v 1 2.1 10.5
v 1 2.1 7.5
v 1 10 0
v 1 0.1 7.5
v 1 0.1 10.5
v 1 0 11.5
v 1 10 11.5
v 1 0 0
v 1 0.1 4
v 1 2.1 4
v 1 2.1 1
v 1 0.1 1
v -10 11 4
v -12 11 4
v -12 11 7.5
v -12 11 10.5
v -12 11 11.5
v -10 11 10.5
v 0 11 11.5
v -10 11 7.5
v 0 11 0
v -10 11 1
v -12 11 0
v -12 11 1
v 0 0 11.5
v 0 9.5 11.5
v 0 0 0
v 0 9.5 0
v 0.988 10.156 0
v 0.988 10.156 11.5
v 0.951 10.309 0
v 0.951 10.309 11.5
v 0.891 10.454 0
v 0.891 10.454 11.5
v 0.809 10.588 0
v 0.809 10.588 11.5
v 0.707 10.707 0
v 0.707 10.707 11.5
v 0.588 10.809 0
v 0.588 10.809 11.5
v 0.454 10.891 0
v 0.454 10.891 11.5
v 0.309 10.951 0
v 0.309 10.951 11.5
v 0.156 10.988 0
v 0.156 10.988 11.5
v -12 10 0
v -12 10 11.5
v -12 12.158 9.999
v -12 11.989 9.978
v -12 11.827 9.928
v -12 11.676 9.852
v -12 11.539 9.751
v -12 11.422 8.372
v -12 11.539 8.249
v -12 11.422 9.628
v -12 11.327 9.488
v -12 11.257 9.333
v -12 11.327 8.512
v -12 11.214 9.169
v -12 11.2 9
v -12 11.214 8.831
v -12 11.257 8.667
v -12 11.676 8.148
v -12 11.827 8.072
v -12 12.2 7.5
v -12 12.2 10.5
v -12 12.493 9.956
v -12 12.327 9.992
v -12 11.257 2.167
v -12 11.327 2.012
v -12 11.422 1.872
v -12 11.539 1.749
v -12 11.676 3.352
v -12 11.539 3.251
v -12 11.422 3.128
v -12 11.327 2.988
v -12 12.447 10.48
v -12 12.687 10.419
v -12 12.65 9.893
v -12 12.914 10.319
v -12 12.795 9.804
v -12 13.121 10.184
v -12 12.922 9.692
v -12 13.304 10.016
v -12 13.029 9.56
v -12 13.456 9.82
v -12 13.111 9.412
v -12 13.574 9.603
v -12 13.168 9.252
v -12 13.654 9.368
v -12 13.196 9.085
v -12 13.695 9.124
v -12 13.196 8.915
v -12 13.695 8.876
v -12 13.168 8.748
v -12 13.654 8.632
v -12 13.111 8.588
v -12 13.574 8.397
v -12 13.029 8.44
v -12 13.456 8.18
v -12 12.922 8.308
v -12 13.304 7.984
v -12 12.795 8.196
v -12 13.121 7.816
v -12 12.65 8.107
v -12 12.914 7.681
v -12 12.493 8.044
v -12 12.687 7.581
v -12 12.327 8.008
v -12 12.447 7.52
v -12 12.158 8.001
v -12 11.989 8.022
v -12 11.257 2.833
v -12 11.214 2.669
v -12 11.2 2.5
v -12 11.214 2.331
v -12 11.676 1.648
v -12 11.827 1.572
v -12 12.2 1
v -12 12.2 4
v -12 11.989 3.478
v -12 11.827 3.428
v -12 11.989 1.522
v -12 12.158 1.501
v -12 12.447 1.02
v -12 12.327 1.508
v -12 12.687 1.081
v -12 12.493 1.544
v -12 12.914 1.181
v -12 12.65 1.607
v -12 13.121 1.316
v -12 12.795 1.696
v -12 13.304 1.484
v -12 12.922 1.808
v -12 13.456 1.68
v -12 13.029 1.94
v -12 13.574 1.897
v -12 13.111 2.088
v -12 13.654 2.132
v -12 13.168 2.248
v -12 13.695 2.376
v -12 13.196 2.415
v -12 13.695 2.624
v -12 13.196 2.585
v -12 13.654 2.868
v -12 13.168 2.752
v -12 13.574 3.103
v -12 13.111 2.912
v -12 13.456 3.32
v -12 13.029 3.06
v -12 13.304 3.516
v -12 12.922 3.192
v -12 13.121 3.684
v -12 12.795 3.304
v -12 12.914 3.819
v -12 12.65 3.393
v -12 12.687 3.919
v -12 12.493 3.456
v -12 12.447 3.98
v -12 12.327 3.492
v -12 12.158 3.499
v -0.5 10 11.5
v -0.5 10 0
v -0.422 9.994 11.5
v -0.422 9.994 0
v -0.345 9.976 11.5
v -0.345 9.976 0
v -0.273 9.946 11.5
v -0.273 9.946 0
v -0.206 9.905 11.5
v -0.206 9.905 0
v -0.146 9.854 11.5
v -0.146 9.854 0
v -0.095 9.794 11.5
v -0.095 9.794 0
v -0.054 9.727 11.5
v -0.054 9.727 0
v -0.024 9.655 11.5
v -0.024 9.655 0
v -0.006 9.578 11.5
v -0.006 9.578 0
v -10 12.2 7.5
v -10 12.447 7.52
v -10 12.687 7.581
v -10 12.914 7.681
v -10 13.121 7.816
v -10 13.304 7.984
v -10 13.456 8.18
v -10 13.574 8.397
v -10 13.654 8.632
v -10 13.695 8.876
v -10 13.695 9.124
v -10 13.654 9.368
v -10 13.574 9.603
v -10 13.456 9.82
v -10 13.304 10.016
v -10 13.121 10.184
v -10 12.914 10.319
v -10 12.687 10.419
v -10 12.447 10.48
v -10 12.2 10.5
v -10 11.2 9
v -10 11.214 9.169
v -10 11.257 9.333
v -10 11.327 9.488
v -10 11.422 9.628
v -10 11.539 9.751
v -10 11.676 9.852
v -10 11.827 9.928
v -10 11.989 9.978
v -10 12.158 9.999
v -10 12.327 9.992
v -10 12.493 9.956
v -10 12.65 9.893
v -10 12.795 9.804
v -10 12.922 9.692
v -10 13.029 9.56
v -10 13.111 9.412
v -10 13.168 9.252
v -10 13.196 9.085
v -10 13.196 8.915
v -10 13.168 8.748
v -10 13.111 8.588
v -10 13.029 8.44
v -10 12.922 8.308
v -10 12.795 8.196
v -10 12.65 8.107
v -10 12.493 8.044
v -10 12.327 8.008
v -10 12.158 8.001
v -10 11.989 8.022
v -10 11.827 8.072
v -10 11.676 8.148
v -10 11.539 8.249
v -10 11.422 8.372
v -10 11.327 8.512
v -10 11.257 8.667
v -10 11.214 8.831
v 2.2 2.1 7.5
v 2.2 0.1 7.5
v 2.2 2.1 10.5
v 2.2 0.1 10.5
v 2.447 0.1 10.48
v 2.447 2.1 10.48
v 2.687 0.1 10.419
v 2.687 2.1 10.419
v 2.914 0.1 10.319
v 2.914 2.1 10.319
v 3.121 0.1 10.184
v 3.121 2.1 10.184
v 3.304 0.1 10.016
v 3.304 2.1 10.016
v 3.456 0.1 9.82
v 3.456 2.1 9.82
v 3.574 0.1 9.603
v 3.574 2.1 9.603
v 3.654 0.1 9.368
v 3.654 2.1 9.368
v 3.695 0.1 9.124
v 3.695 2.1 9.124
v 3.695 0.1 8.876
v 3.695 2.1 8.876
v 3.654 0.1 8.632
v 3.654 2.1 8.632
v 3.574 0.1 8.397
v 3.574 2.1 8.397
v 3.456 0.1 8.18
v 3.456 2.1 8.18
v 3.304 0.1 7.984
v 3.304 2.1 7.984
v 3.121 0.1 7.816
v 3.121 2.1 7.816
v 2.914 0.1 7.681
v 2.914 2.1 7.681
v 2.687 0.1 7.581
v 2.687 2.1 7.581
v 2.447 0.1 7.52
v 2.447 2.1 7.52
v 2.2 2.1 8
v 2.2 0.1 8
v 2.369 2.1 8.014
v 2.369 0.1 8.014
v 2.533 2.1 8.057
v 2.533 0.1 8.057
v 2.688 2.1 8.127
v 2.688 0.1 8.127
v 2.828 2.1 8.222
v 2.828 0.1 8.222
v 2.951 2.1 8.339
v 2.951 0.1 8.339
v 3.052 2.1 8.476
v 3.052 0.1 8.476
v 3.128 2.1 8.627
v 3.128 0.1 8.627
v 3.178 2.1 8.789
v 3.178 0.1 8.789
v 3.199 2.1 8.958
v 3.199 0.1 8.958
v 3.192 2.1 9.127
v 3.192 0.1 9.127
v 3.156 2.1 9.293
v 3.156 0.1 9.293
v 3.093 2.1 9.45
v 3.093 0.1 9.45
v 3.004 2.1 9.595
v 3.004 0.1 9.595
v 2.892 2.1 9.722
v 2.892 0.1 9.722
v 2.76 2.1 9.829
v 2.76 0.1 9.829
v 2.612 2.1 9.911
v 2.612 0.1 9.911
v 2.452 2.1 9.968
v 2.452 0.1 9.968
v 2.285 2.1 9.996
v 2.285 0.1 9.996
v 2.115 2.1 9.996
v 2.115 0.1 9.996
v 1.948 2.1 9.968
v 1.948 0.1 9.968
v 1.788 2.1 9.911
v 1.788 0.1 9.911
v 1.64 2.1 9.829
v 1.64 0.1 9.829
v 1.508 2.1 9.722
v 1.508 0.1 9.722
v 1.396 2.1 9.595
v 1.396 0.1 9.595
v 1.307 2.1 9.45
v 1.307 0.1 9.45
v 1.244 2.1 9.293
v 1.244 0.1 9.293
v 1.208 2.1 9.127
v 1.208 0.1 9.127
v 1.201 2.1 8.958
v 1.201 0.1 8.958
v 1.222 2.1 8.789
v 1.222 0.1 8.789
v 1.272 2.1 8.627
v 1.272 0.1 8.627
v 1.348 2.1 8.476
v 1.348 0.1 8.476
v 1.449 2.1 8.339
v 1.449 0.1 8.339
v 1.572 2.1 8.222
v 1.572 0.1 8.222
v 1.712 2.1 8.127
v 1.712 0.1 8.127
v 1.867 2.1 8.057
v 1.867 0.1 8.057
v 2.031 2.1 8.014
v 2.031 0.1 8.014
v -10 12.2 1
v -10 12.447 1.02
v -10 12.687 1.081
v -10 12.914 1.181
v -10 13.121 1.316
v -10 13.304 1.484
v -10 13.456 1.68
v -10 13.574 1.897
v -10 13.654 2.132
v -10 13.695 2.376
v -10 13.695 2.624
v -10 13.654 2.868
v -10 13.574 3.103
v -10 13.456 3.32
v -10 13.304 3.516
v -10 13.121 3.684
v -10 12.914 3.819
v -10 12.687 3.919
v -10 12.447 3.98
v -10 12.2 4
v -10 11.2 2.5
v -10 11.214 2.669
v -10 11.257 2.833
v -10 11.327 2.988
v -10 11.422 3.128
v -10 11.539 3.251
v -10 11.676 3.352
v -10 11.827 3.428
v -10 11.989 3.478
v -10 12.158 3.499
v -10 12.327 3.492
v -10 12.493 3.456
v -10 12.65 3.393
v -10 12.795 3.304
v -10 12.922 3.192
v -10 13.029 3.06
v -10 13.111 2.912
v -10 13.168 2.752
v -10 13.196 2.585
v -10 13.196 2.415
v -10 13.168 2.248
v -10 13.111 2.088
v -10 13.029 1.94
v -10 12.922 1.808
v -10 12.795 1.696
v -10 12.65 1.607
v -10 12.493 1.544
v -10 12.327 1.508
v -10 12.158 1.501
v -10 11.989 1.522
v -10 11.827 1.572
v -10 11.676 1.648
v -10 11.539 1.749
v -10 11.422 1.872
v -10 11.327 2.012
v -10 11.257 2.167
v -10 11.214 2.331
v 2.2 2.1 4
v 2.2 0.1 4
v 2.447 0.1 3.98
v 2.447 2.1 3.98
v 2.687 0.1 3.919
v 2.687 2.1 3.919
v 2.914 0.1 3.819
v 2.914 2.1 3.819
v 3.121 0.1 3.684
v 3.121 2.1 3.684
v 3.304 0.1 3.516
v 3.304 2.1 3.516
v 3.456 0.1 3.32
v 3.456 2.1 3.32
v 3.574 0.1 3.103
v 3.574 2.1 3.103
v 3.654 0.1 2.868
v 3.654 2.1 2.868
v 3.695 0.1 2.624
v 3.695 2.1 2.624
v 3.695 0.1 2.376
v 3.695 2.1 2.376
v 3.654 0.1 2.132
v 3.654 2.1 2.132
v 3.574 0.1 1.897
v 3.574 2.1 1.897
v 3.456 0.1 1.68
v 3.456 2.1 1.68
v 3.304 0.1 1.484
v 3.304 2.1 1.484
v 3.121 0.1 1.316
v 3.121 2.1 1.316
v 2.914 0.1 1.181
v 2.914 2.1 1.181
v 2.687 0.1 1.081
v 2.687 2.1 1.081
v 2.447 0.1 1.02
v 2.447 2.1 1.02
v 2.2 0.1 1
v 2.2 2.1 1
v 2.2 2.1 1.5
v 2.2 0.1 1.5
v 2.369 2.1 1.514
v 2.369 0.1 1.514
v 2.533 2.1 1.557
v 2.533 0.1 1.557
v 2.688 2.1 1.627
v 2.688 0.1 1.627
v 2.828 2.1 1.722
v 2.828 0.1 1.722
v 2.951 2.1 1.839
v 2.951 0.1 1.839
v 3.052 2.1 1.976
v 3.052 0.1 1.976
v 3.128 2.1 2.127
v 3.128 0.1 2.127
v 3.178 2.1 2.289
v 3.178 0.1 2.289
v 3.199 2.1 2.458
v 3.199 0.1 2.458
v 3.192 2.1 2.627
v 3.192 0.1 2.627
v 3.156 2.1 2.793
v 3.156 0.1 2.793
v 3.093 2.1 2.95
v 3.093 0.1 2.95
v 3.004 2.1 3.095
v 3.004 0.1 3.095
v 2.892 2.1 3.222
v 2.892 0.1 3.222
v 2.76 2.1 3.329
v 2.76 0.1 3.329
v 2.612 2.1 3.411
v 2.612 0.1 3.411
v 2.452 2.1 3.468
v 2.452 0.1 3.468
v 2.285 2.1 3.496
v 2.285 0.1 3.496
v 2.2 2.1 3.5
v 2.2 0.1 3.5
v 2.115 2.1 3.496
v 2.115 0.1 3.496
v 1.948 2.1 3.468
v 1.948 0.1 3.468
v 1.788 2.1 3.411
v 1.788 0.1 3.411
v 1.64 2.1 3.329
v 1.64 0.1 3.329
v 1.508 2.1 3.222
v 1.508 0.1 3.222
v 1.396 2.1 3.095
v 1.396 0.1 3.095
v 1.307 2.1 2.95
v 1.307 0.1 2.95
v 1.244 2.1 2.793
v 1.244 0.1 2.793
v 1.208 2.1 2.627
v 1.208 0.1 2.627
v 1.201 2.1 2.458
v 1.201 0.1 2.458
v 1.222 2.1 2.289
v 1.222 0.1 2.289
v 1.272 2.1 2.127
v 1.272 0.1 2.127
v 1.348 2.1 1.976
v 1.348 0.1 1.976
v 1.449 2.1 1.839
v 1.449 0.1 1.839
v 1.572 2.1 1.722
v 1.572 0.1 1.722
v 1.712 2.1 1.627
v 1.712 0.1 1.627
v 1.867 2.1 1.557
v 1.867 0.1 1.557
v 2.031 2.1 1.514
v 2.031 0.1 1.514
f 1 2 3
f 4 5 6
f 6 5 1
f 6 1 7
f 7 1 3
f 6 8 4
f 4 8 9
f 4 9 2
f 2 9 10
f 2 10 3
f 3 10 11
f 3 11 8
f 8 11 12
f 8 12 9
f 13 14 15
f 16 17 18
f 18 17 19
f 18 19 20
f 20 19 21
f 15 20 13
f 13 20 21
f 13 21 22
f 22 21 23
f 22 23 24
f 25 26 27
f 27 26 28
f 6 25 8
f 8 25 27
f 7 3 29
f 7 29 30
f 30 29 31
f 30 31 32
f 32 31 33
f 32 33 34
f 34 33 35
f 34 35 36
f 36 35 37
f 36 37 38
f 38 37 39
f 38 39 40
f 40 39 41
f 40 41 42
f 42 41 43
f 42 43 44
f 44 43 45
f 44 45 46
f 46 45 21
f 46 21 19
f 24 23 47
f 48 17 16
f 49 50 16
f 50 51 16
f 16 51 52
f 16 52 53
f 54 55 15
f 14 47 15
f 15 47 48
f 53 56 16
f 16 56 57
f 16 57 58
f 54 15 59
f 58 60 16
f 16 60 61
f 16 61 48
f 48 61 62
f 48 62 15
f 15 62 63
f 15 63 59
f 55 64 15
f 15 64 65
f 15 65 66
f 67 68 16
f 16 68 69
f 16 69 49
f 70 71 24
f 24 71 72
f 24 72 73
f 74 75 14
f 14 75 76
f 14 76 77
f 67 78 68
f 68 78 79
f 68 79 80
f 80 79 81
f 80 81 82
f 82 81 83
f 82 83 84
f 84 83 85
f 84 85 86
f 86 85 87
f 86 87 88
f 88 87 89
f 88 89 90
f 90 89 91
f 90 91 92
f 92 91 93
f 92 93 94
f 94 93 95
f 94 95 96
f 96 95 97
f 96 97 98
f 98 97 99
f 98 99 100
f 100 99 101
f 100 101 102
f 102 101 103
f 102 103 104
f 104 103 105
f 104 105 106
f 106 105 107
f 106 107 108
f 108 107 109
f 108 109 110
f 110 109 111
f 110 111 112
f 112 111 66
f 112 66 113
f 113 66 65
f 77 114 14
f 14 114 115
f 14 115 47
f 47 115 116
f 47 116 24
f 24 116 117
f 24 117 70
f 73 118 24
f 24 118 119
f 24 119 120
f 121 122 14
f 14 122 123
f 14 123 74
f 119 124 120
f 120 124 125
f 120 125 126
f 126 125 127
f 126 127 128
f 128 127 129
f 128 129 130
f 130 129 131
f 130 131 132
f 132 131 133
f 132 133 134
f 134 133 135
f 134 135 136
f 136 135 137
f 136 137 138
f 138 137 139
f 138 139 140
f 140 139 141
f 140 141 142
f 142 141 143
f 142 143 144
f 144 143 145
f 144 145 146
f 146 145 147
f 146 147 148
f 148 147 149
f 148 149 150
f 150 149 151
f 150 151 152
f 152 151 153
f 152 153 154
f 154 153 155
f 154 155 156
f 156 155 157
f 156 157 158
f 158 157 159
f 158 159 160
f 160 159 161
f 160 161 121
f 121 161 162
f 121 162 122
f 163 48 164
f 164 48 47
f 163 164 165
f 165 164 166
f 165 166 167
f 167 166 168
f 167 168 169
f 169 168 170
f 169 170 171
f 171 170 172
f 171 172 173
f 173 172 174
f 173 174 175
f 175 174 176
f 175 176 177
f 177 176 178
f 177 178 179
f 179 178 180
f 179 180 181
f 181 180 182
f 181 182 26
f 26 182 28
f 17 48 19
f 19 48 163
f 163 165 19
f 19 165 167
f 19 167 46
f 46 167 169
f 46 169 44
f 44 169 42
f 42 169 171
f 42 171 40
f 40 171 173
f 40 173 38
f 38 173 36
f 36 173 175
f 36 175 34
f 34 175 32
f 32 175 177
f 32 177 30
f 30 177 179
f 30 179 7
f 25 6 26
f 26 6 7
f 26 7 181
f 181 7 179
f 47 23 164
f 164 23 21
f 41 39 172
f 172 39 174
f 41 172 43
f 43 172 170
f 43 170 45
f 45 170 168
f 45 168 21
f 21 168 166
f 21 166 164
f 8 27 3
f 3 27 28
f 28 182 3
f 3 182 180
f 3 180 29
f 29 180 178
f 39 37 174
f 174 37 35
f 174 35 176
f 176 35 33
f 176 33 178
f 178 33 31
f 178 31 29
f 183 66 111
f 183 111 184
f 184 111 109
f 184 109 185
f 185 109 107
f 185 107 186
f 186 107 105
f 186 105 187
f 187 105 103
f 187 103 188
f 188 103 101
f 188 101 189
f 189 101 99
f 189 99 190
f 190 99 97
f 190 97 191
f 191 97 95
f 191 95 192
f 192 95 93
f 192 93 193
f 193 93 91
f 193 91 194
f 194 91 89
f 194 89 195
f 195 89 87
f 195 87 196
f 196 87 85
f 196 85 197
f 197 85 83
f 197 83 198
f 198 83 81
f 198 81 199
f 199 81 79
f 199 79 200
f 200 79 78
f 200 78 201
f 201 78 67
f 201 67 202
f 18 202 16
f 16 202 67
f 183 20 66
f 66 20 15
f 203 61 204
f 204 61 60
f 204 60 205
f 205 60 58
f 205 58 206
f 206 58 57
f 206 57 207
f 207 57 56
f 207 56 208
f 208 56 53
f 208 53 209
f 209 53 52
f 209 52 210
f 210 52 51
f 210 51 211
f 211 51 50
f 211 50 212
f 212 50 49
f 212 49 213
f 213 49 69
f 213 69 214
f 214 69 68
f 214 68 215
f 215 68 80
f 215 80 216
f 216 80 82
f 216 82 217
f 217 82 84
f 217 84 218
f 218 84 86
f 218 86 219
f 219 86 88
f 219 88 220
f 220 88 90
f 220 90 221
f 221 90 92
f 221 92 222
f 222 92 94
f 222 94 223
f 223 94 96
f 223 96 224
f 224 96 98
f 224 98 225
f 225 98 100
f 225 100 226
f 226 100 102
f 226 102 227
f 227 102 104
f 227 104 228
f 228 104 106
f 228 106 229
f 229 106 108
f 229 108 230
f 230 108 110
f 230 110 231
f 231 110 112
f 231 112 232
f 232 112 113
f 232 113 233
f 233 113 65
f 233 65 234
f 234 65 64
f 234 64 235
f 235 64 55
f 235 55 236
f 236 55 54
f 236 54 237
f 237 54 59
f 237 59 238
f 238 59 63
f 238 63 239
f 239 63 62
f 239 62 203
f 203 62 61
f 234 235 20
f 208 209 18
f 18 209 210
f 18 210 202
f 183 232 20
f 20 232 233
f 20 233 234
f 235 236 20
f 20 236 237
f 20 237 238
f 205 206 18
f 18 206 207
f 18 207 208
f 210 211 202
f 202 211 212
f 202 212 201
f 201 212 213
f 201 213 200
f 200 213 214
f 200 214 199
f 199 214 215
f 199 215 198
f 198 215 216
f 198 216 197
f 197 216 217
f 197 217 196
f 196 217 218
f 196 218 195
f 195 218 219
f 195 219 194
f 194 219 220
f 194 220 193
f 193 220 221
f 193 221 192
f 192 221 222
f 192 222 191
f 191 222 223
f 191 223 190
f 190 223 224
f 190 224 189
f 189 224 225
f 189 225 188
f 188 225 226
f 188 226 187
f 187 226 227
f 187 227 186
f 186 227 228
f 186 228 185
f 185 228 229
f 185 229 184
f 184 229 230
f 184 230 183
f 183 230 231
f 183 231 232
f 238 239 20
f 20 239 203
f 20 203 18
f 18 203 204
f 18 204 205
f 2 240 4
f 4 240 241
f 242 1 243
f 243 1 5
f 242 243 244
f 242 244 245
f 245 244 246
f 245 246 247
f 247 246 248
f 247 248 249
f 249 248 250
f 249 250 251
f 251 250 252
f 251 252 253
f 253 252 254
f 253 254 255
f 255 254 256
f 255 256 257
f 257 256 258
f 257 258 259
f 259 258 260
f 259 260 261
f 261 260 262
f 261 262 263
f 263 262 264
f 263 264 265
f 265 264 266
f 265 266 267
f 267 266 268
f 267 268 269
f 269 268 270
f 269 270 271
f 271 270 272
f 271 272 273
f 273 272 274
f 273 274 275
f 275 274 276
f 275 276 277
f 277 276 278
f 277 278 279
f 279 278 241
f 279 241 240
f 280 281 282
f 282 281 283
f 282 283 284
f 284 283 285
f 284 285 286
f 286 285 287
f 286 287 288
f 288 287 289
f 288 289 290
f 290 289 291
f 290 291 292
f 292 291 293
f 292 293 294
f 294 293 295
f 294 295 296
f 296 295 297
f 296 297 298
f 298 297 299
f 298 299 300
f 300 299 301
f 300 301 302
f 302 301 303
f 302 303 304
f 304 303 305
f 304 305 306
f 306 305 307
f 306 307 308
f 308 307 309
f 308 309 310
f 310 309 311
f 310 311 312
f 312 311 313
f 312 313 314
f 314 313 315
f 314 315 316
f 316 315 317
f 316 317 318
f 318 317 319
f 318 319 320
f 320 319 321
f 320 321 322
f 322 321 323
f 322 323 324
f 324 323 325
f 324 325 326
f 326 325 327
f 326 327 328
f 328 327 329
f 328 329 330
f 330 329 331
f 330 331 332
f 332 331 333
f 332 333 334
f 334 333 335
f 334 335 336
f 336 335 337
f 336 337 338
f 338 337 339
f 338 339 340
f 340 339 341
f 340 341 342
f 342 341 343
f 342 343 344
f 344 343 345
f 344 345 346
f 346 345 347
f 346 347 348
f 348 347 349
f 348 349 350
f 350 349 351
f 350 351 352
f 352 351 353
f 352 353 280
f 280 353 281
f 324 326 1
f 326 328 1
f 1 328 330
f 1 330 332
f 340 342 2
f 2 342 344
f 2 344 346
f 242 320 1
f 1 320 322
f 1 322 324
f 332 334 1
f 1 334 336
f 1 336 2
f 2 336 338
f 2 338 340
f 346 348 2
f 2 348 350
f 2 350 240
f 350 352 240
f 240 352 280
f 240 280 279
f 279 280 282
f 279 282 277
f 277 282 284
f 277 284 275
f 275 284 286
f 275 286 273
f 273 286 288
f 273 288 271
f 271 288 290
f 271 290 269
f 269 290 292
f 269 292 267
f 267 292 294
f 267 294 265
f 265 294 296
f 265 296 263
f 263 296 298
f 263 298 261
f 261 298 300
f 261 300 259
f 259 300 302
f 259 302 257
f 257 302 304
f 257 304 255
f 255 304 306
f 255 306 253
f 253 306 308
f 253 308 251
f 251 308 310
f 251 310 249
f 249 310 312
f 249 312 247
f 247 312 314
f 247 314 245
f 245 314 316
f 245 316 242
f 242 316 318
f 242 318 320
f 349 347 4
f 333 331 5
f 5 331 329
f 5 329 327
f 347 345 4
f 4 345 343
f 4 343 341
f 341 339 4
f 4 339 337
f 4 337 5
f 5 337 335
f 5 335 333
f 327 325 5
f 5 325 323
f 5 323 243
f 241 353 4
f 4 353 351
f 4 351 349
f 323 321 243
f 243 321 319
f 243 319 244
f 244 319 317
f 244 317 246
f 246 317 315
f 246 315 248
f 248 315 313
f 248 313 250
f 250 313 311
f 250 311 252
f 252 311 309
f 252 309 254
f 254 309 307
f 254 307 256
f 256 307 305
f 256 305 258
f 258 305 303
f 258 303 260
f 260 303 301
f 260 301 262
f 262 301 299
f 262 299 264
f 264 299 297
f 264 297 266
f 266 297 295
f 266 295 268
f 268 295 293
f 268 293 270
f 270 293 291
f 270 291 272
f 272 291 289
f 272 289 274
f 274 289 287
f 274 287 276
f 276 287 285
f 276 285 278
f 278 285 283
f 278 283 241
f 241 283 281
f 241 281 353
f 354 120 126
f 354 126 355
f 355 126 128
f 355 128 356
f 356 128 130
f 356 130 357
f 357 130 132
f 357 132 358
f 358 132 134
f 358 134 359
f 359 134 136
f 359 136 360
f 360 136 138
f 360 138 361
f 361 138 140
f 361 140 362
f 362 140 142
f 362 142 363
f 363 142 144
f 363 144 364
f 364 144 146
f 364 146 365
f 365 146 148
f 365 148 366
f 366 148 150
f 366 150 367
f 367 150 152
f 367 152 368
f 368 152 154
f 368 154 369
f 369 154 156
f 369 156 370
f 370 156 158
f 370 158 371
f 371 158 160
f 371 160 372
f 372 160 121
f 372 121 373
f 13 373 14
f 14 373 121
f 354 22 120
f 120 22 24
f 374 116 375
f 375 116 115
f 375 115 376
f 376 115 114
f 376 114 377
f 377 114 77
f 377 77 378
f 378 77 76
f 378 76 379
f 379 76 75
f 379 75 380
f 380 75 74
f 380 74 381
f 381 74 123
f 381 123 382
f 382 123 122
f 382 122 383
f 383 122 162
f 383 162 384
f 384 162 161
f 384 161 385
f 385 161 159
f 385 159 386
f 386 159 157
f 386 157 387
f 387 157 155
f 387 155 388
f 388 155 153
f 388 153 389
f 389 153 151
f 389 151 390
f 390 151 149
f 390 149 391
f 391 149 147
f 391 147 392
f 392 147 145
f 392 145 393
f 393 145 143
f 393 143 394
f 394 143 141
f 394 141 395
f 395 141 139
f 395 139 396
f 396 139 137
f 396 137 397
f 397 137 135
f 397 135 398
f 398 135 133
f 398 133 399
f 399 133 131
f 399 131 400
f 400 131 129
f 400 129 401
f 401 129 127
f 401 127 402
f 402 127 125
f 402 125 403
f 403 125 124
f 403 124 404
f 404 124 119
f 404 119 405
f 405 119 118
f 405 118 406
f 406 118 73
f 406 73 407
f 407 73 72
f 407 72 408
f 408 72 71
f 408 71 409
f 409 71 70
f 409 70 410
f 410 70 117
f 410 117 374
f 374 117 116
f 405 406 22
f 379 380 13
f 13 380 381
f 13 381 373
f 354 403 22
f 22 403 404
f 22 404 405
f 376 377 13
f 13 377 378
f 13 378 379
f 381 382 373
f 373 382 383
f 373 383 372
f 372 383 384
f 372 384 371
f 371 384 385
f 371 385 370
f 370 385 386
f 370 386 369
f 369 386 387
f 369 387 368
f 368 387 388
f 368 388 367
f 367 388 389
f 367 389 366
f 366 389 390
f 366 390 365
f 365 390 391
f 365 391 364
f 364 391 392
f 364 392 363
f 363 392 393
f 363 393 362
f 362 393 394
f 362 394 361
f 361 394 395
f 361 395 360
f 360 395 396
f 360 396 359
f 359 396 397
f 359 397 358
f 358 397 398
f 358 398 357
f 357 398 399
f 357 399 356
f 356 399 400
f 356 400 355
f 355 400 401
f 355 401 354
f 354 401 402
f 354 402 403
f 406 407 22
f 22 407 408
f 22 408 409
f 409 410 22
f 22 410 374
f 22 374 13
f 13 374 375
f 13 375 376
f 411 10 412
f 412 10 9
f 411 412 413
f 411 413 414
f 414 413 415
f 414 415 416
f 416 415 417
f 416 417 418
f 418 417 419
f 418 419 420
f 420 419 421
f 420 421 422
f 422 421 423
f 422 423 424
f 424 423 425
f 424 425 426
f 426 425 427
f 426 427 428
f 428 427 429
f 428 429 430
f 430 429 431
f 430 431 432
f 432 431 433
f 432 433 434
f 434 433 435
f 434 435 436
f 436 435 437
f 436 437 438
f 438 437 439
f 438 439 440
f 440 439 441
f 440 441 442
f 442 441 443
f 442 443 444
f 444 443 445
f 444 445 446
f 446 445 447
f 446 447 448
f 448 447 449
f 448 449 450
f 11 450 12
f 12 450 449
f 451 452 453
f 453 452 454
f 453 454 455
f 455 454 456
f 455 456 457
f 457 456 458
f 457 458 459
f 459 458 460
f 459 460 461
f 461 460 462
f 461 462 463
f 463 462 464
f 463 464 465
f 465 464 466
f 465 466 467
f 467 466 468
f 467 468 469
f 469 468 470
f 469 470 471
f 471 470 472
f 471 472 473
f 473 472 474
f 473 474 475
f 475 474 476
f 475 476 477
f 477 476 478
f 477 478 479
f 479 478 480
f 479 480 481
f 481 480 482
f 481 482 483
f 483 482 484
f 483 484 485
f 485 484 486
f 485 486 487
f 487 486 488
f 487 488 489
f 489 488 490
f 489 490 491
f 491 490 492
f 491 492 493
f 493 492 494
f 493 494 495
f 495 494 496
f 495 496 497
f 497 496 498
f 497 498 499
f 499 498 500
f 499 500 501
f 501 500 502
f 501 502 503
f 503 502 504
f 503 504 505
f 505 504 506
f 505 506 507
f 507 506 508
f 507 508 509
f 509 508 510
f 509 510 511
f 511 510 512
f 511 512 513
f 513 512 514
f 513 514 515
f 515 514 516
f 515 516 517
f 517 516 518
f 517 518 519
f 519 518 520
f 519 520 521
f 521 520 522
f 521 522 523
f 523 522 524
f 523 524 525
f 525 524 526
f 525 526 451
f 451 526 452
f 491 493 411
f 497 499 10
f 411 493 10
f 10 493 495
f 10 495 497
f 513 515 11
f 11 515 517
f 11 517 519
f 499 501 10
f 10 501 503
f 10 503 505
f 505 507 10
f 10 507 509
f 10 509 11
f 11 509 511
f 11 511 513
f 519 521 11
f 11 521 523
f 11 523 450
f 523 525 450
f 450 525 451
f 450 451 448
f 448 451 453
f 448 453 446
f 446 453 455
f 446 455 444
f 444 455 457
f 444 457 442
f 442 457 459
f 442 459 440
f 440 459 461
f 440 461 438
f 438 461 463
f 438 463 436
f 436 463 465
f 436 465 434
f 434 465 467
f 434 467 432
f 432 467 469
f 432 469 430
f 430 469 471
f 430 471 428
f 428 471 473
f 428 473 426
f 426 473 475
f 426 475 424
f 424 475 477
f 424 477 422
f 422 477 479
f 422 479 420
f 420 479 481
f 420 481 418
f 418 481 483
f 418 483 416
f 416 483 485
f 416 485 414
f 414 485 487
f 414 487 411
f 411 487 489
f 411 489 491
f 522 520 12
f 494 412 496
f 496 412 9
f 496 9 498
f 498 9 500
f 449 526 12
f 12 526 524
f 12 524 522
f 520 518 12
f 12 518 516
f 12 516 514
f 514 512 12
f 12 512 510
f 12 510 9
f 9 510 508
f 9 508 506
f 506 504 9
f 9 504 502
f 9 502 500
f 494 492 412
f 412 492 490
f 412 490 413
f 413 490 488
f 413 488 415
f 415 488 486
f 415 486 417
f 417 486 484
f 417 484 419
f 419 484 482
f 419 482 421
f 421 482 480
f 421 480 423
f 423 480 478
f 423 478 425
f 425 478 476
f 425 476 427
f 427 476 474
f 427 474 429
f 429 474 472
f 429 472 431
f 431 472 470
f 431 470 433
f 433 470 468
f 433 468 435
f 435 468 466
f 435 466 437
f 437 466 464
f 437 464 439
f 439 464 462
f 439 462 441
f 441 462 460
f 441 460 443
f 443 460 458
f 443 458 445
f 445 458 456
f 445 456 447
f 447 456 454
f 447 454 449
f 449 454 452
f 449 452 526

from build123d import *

# Parameters (mm, degrees)
BOSS_EXTRUDE2_DEPTH = 11.5
SKETCH5_R           = 1
BOSS_EXTRUDE5_DEPTH = 2
SKETCH3_R           = 1
BOSS_EXTRUDE6_DEPTH = 2


with BuildPart() as part:
    # Sketch1 → Boss-Extrude2 (new body)
    with BuildSketch(Plane.XY):
        with BuildLine():
            Line((0, 0), (1, 0))
            Line((1, 0), (1, 10))
            ThreePointArc((1, 10), (0.707106781, 10.707106781), (0, 11))
            Line((0, 11), (-12, 11))
            Line((-12, 11), (-12, 10))
            Line((-12, 10), (-0.5, 10))
            ThreePointArc((-0.5, 10), (-0.146446609, 9.853553391), (0, 9.5))
            Line((0, 9.5), (0, 0))
        make_face()
    extrude(amount=BOSS_EXTRUDE2_DEPTH)

    # Sketch5 → Boss-Extrude5 (add)
    with BuildSketch(Plane.ZY.offset(12)):
        with BuildLine():
            Line((7.5, 11), (10.5, 11))
            Line((10.5, 11), (10.5, 12.2))
            ThreePointArc((10.5, 12.2), (9, 13.7), (7.5, 12.2))
            Line((7.5, 12.2), (7.5, 11))
        make_face()
        with Locations(Location((9, 12.2, 0), (0, 0, 270))):
            Circle(SKETCH5_R, mode=Mode.SUBTRACT)
    boss_extrude5 = extrude(amount=-BOSS_EXTRUDE5_DEPTH)

    # Sketch3 → Boss-Extrude6 (add)
    with BuildSketch(Plane(origin=(0, 0.1, 0), x_dir=(-1, 0, 0), z_dir=(0, -1, 0))):
        with BuildLine():
            Line((-1, -10.5), (-1, -7.5))
            Line((-1, -7.5), (-2.2, -7.5))
            ThreePointArc((-2.2, -7.5), (-3.7, -9), (-2.2, -10.5))
            Line((-2.2, -10.5), (-1, -10.5))
        make_face()
        with Locations(Location((-2.2, -9, 0), (0, 0, 90))):
            Circle(SKETCH3_R, mode=Mode.SUBTRACT)
    boss_extrude6 = extrude(amount=-BOSS_EXTRUDE6_DEPTH)

    # Mirror1: Boss-Extrude5, Boss-Extrude6 across plane
    add(boss_extrude5.mirror(Plane(origin=(0, 0, 5.75), x_dir=(1, 0, 0), z_dir=(0, 0, -1))))
    add(boss_extrude6.mirror(Plane(origin=(0, 0, 5.75), x_dir=(1, 0, 0), z_dir=(0, 0, -1))))


solid = part.part
